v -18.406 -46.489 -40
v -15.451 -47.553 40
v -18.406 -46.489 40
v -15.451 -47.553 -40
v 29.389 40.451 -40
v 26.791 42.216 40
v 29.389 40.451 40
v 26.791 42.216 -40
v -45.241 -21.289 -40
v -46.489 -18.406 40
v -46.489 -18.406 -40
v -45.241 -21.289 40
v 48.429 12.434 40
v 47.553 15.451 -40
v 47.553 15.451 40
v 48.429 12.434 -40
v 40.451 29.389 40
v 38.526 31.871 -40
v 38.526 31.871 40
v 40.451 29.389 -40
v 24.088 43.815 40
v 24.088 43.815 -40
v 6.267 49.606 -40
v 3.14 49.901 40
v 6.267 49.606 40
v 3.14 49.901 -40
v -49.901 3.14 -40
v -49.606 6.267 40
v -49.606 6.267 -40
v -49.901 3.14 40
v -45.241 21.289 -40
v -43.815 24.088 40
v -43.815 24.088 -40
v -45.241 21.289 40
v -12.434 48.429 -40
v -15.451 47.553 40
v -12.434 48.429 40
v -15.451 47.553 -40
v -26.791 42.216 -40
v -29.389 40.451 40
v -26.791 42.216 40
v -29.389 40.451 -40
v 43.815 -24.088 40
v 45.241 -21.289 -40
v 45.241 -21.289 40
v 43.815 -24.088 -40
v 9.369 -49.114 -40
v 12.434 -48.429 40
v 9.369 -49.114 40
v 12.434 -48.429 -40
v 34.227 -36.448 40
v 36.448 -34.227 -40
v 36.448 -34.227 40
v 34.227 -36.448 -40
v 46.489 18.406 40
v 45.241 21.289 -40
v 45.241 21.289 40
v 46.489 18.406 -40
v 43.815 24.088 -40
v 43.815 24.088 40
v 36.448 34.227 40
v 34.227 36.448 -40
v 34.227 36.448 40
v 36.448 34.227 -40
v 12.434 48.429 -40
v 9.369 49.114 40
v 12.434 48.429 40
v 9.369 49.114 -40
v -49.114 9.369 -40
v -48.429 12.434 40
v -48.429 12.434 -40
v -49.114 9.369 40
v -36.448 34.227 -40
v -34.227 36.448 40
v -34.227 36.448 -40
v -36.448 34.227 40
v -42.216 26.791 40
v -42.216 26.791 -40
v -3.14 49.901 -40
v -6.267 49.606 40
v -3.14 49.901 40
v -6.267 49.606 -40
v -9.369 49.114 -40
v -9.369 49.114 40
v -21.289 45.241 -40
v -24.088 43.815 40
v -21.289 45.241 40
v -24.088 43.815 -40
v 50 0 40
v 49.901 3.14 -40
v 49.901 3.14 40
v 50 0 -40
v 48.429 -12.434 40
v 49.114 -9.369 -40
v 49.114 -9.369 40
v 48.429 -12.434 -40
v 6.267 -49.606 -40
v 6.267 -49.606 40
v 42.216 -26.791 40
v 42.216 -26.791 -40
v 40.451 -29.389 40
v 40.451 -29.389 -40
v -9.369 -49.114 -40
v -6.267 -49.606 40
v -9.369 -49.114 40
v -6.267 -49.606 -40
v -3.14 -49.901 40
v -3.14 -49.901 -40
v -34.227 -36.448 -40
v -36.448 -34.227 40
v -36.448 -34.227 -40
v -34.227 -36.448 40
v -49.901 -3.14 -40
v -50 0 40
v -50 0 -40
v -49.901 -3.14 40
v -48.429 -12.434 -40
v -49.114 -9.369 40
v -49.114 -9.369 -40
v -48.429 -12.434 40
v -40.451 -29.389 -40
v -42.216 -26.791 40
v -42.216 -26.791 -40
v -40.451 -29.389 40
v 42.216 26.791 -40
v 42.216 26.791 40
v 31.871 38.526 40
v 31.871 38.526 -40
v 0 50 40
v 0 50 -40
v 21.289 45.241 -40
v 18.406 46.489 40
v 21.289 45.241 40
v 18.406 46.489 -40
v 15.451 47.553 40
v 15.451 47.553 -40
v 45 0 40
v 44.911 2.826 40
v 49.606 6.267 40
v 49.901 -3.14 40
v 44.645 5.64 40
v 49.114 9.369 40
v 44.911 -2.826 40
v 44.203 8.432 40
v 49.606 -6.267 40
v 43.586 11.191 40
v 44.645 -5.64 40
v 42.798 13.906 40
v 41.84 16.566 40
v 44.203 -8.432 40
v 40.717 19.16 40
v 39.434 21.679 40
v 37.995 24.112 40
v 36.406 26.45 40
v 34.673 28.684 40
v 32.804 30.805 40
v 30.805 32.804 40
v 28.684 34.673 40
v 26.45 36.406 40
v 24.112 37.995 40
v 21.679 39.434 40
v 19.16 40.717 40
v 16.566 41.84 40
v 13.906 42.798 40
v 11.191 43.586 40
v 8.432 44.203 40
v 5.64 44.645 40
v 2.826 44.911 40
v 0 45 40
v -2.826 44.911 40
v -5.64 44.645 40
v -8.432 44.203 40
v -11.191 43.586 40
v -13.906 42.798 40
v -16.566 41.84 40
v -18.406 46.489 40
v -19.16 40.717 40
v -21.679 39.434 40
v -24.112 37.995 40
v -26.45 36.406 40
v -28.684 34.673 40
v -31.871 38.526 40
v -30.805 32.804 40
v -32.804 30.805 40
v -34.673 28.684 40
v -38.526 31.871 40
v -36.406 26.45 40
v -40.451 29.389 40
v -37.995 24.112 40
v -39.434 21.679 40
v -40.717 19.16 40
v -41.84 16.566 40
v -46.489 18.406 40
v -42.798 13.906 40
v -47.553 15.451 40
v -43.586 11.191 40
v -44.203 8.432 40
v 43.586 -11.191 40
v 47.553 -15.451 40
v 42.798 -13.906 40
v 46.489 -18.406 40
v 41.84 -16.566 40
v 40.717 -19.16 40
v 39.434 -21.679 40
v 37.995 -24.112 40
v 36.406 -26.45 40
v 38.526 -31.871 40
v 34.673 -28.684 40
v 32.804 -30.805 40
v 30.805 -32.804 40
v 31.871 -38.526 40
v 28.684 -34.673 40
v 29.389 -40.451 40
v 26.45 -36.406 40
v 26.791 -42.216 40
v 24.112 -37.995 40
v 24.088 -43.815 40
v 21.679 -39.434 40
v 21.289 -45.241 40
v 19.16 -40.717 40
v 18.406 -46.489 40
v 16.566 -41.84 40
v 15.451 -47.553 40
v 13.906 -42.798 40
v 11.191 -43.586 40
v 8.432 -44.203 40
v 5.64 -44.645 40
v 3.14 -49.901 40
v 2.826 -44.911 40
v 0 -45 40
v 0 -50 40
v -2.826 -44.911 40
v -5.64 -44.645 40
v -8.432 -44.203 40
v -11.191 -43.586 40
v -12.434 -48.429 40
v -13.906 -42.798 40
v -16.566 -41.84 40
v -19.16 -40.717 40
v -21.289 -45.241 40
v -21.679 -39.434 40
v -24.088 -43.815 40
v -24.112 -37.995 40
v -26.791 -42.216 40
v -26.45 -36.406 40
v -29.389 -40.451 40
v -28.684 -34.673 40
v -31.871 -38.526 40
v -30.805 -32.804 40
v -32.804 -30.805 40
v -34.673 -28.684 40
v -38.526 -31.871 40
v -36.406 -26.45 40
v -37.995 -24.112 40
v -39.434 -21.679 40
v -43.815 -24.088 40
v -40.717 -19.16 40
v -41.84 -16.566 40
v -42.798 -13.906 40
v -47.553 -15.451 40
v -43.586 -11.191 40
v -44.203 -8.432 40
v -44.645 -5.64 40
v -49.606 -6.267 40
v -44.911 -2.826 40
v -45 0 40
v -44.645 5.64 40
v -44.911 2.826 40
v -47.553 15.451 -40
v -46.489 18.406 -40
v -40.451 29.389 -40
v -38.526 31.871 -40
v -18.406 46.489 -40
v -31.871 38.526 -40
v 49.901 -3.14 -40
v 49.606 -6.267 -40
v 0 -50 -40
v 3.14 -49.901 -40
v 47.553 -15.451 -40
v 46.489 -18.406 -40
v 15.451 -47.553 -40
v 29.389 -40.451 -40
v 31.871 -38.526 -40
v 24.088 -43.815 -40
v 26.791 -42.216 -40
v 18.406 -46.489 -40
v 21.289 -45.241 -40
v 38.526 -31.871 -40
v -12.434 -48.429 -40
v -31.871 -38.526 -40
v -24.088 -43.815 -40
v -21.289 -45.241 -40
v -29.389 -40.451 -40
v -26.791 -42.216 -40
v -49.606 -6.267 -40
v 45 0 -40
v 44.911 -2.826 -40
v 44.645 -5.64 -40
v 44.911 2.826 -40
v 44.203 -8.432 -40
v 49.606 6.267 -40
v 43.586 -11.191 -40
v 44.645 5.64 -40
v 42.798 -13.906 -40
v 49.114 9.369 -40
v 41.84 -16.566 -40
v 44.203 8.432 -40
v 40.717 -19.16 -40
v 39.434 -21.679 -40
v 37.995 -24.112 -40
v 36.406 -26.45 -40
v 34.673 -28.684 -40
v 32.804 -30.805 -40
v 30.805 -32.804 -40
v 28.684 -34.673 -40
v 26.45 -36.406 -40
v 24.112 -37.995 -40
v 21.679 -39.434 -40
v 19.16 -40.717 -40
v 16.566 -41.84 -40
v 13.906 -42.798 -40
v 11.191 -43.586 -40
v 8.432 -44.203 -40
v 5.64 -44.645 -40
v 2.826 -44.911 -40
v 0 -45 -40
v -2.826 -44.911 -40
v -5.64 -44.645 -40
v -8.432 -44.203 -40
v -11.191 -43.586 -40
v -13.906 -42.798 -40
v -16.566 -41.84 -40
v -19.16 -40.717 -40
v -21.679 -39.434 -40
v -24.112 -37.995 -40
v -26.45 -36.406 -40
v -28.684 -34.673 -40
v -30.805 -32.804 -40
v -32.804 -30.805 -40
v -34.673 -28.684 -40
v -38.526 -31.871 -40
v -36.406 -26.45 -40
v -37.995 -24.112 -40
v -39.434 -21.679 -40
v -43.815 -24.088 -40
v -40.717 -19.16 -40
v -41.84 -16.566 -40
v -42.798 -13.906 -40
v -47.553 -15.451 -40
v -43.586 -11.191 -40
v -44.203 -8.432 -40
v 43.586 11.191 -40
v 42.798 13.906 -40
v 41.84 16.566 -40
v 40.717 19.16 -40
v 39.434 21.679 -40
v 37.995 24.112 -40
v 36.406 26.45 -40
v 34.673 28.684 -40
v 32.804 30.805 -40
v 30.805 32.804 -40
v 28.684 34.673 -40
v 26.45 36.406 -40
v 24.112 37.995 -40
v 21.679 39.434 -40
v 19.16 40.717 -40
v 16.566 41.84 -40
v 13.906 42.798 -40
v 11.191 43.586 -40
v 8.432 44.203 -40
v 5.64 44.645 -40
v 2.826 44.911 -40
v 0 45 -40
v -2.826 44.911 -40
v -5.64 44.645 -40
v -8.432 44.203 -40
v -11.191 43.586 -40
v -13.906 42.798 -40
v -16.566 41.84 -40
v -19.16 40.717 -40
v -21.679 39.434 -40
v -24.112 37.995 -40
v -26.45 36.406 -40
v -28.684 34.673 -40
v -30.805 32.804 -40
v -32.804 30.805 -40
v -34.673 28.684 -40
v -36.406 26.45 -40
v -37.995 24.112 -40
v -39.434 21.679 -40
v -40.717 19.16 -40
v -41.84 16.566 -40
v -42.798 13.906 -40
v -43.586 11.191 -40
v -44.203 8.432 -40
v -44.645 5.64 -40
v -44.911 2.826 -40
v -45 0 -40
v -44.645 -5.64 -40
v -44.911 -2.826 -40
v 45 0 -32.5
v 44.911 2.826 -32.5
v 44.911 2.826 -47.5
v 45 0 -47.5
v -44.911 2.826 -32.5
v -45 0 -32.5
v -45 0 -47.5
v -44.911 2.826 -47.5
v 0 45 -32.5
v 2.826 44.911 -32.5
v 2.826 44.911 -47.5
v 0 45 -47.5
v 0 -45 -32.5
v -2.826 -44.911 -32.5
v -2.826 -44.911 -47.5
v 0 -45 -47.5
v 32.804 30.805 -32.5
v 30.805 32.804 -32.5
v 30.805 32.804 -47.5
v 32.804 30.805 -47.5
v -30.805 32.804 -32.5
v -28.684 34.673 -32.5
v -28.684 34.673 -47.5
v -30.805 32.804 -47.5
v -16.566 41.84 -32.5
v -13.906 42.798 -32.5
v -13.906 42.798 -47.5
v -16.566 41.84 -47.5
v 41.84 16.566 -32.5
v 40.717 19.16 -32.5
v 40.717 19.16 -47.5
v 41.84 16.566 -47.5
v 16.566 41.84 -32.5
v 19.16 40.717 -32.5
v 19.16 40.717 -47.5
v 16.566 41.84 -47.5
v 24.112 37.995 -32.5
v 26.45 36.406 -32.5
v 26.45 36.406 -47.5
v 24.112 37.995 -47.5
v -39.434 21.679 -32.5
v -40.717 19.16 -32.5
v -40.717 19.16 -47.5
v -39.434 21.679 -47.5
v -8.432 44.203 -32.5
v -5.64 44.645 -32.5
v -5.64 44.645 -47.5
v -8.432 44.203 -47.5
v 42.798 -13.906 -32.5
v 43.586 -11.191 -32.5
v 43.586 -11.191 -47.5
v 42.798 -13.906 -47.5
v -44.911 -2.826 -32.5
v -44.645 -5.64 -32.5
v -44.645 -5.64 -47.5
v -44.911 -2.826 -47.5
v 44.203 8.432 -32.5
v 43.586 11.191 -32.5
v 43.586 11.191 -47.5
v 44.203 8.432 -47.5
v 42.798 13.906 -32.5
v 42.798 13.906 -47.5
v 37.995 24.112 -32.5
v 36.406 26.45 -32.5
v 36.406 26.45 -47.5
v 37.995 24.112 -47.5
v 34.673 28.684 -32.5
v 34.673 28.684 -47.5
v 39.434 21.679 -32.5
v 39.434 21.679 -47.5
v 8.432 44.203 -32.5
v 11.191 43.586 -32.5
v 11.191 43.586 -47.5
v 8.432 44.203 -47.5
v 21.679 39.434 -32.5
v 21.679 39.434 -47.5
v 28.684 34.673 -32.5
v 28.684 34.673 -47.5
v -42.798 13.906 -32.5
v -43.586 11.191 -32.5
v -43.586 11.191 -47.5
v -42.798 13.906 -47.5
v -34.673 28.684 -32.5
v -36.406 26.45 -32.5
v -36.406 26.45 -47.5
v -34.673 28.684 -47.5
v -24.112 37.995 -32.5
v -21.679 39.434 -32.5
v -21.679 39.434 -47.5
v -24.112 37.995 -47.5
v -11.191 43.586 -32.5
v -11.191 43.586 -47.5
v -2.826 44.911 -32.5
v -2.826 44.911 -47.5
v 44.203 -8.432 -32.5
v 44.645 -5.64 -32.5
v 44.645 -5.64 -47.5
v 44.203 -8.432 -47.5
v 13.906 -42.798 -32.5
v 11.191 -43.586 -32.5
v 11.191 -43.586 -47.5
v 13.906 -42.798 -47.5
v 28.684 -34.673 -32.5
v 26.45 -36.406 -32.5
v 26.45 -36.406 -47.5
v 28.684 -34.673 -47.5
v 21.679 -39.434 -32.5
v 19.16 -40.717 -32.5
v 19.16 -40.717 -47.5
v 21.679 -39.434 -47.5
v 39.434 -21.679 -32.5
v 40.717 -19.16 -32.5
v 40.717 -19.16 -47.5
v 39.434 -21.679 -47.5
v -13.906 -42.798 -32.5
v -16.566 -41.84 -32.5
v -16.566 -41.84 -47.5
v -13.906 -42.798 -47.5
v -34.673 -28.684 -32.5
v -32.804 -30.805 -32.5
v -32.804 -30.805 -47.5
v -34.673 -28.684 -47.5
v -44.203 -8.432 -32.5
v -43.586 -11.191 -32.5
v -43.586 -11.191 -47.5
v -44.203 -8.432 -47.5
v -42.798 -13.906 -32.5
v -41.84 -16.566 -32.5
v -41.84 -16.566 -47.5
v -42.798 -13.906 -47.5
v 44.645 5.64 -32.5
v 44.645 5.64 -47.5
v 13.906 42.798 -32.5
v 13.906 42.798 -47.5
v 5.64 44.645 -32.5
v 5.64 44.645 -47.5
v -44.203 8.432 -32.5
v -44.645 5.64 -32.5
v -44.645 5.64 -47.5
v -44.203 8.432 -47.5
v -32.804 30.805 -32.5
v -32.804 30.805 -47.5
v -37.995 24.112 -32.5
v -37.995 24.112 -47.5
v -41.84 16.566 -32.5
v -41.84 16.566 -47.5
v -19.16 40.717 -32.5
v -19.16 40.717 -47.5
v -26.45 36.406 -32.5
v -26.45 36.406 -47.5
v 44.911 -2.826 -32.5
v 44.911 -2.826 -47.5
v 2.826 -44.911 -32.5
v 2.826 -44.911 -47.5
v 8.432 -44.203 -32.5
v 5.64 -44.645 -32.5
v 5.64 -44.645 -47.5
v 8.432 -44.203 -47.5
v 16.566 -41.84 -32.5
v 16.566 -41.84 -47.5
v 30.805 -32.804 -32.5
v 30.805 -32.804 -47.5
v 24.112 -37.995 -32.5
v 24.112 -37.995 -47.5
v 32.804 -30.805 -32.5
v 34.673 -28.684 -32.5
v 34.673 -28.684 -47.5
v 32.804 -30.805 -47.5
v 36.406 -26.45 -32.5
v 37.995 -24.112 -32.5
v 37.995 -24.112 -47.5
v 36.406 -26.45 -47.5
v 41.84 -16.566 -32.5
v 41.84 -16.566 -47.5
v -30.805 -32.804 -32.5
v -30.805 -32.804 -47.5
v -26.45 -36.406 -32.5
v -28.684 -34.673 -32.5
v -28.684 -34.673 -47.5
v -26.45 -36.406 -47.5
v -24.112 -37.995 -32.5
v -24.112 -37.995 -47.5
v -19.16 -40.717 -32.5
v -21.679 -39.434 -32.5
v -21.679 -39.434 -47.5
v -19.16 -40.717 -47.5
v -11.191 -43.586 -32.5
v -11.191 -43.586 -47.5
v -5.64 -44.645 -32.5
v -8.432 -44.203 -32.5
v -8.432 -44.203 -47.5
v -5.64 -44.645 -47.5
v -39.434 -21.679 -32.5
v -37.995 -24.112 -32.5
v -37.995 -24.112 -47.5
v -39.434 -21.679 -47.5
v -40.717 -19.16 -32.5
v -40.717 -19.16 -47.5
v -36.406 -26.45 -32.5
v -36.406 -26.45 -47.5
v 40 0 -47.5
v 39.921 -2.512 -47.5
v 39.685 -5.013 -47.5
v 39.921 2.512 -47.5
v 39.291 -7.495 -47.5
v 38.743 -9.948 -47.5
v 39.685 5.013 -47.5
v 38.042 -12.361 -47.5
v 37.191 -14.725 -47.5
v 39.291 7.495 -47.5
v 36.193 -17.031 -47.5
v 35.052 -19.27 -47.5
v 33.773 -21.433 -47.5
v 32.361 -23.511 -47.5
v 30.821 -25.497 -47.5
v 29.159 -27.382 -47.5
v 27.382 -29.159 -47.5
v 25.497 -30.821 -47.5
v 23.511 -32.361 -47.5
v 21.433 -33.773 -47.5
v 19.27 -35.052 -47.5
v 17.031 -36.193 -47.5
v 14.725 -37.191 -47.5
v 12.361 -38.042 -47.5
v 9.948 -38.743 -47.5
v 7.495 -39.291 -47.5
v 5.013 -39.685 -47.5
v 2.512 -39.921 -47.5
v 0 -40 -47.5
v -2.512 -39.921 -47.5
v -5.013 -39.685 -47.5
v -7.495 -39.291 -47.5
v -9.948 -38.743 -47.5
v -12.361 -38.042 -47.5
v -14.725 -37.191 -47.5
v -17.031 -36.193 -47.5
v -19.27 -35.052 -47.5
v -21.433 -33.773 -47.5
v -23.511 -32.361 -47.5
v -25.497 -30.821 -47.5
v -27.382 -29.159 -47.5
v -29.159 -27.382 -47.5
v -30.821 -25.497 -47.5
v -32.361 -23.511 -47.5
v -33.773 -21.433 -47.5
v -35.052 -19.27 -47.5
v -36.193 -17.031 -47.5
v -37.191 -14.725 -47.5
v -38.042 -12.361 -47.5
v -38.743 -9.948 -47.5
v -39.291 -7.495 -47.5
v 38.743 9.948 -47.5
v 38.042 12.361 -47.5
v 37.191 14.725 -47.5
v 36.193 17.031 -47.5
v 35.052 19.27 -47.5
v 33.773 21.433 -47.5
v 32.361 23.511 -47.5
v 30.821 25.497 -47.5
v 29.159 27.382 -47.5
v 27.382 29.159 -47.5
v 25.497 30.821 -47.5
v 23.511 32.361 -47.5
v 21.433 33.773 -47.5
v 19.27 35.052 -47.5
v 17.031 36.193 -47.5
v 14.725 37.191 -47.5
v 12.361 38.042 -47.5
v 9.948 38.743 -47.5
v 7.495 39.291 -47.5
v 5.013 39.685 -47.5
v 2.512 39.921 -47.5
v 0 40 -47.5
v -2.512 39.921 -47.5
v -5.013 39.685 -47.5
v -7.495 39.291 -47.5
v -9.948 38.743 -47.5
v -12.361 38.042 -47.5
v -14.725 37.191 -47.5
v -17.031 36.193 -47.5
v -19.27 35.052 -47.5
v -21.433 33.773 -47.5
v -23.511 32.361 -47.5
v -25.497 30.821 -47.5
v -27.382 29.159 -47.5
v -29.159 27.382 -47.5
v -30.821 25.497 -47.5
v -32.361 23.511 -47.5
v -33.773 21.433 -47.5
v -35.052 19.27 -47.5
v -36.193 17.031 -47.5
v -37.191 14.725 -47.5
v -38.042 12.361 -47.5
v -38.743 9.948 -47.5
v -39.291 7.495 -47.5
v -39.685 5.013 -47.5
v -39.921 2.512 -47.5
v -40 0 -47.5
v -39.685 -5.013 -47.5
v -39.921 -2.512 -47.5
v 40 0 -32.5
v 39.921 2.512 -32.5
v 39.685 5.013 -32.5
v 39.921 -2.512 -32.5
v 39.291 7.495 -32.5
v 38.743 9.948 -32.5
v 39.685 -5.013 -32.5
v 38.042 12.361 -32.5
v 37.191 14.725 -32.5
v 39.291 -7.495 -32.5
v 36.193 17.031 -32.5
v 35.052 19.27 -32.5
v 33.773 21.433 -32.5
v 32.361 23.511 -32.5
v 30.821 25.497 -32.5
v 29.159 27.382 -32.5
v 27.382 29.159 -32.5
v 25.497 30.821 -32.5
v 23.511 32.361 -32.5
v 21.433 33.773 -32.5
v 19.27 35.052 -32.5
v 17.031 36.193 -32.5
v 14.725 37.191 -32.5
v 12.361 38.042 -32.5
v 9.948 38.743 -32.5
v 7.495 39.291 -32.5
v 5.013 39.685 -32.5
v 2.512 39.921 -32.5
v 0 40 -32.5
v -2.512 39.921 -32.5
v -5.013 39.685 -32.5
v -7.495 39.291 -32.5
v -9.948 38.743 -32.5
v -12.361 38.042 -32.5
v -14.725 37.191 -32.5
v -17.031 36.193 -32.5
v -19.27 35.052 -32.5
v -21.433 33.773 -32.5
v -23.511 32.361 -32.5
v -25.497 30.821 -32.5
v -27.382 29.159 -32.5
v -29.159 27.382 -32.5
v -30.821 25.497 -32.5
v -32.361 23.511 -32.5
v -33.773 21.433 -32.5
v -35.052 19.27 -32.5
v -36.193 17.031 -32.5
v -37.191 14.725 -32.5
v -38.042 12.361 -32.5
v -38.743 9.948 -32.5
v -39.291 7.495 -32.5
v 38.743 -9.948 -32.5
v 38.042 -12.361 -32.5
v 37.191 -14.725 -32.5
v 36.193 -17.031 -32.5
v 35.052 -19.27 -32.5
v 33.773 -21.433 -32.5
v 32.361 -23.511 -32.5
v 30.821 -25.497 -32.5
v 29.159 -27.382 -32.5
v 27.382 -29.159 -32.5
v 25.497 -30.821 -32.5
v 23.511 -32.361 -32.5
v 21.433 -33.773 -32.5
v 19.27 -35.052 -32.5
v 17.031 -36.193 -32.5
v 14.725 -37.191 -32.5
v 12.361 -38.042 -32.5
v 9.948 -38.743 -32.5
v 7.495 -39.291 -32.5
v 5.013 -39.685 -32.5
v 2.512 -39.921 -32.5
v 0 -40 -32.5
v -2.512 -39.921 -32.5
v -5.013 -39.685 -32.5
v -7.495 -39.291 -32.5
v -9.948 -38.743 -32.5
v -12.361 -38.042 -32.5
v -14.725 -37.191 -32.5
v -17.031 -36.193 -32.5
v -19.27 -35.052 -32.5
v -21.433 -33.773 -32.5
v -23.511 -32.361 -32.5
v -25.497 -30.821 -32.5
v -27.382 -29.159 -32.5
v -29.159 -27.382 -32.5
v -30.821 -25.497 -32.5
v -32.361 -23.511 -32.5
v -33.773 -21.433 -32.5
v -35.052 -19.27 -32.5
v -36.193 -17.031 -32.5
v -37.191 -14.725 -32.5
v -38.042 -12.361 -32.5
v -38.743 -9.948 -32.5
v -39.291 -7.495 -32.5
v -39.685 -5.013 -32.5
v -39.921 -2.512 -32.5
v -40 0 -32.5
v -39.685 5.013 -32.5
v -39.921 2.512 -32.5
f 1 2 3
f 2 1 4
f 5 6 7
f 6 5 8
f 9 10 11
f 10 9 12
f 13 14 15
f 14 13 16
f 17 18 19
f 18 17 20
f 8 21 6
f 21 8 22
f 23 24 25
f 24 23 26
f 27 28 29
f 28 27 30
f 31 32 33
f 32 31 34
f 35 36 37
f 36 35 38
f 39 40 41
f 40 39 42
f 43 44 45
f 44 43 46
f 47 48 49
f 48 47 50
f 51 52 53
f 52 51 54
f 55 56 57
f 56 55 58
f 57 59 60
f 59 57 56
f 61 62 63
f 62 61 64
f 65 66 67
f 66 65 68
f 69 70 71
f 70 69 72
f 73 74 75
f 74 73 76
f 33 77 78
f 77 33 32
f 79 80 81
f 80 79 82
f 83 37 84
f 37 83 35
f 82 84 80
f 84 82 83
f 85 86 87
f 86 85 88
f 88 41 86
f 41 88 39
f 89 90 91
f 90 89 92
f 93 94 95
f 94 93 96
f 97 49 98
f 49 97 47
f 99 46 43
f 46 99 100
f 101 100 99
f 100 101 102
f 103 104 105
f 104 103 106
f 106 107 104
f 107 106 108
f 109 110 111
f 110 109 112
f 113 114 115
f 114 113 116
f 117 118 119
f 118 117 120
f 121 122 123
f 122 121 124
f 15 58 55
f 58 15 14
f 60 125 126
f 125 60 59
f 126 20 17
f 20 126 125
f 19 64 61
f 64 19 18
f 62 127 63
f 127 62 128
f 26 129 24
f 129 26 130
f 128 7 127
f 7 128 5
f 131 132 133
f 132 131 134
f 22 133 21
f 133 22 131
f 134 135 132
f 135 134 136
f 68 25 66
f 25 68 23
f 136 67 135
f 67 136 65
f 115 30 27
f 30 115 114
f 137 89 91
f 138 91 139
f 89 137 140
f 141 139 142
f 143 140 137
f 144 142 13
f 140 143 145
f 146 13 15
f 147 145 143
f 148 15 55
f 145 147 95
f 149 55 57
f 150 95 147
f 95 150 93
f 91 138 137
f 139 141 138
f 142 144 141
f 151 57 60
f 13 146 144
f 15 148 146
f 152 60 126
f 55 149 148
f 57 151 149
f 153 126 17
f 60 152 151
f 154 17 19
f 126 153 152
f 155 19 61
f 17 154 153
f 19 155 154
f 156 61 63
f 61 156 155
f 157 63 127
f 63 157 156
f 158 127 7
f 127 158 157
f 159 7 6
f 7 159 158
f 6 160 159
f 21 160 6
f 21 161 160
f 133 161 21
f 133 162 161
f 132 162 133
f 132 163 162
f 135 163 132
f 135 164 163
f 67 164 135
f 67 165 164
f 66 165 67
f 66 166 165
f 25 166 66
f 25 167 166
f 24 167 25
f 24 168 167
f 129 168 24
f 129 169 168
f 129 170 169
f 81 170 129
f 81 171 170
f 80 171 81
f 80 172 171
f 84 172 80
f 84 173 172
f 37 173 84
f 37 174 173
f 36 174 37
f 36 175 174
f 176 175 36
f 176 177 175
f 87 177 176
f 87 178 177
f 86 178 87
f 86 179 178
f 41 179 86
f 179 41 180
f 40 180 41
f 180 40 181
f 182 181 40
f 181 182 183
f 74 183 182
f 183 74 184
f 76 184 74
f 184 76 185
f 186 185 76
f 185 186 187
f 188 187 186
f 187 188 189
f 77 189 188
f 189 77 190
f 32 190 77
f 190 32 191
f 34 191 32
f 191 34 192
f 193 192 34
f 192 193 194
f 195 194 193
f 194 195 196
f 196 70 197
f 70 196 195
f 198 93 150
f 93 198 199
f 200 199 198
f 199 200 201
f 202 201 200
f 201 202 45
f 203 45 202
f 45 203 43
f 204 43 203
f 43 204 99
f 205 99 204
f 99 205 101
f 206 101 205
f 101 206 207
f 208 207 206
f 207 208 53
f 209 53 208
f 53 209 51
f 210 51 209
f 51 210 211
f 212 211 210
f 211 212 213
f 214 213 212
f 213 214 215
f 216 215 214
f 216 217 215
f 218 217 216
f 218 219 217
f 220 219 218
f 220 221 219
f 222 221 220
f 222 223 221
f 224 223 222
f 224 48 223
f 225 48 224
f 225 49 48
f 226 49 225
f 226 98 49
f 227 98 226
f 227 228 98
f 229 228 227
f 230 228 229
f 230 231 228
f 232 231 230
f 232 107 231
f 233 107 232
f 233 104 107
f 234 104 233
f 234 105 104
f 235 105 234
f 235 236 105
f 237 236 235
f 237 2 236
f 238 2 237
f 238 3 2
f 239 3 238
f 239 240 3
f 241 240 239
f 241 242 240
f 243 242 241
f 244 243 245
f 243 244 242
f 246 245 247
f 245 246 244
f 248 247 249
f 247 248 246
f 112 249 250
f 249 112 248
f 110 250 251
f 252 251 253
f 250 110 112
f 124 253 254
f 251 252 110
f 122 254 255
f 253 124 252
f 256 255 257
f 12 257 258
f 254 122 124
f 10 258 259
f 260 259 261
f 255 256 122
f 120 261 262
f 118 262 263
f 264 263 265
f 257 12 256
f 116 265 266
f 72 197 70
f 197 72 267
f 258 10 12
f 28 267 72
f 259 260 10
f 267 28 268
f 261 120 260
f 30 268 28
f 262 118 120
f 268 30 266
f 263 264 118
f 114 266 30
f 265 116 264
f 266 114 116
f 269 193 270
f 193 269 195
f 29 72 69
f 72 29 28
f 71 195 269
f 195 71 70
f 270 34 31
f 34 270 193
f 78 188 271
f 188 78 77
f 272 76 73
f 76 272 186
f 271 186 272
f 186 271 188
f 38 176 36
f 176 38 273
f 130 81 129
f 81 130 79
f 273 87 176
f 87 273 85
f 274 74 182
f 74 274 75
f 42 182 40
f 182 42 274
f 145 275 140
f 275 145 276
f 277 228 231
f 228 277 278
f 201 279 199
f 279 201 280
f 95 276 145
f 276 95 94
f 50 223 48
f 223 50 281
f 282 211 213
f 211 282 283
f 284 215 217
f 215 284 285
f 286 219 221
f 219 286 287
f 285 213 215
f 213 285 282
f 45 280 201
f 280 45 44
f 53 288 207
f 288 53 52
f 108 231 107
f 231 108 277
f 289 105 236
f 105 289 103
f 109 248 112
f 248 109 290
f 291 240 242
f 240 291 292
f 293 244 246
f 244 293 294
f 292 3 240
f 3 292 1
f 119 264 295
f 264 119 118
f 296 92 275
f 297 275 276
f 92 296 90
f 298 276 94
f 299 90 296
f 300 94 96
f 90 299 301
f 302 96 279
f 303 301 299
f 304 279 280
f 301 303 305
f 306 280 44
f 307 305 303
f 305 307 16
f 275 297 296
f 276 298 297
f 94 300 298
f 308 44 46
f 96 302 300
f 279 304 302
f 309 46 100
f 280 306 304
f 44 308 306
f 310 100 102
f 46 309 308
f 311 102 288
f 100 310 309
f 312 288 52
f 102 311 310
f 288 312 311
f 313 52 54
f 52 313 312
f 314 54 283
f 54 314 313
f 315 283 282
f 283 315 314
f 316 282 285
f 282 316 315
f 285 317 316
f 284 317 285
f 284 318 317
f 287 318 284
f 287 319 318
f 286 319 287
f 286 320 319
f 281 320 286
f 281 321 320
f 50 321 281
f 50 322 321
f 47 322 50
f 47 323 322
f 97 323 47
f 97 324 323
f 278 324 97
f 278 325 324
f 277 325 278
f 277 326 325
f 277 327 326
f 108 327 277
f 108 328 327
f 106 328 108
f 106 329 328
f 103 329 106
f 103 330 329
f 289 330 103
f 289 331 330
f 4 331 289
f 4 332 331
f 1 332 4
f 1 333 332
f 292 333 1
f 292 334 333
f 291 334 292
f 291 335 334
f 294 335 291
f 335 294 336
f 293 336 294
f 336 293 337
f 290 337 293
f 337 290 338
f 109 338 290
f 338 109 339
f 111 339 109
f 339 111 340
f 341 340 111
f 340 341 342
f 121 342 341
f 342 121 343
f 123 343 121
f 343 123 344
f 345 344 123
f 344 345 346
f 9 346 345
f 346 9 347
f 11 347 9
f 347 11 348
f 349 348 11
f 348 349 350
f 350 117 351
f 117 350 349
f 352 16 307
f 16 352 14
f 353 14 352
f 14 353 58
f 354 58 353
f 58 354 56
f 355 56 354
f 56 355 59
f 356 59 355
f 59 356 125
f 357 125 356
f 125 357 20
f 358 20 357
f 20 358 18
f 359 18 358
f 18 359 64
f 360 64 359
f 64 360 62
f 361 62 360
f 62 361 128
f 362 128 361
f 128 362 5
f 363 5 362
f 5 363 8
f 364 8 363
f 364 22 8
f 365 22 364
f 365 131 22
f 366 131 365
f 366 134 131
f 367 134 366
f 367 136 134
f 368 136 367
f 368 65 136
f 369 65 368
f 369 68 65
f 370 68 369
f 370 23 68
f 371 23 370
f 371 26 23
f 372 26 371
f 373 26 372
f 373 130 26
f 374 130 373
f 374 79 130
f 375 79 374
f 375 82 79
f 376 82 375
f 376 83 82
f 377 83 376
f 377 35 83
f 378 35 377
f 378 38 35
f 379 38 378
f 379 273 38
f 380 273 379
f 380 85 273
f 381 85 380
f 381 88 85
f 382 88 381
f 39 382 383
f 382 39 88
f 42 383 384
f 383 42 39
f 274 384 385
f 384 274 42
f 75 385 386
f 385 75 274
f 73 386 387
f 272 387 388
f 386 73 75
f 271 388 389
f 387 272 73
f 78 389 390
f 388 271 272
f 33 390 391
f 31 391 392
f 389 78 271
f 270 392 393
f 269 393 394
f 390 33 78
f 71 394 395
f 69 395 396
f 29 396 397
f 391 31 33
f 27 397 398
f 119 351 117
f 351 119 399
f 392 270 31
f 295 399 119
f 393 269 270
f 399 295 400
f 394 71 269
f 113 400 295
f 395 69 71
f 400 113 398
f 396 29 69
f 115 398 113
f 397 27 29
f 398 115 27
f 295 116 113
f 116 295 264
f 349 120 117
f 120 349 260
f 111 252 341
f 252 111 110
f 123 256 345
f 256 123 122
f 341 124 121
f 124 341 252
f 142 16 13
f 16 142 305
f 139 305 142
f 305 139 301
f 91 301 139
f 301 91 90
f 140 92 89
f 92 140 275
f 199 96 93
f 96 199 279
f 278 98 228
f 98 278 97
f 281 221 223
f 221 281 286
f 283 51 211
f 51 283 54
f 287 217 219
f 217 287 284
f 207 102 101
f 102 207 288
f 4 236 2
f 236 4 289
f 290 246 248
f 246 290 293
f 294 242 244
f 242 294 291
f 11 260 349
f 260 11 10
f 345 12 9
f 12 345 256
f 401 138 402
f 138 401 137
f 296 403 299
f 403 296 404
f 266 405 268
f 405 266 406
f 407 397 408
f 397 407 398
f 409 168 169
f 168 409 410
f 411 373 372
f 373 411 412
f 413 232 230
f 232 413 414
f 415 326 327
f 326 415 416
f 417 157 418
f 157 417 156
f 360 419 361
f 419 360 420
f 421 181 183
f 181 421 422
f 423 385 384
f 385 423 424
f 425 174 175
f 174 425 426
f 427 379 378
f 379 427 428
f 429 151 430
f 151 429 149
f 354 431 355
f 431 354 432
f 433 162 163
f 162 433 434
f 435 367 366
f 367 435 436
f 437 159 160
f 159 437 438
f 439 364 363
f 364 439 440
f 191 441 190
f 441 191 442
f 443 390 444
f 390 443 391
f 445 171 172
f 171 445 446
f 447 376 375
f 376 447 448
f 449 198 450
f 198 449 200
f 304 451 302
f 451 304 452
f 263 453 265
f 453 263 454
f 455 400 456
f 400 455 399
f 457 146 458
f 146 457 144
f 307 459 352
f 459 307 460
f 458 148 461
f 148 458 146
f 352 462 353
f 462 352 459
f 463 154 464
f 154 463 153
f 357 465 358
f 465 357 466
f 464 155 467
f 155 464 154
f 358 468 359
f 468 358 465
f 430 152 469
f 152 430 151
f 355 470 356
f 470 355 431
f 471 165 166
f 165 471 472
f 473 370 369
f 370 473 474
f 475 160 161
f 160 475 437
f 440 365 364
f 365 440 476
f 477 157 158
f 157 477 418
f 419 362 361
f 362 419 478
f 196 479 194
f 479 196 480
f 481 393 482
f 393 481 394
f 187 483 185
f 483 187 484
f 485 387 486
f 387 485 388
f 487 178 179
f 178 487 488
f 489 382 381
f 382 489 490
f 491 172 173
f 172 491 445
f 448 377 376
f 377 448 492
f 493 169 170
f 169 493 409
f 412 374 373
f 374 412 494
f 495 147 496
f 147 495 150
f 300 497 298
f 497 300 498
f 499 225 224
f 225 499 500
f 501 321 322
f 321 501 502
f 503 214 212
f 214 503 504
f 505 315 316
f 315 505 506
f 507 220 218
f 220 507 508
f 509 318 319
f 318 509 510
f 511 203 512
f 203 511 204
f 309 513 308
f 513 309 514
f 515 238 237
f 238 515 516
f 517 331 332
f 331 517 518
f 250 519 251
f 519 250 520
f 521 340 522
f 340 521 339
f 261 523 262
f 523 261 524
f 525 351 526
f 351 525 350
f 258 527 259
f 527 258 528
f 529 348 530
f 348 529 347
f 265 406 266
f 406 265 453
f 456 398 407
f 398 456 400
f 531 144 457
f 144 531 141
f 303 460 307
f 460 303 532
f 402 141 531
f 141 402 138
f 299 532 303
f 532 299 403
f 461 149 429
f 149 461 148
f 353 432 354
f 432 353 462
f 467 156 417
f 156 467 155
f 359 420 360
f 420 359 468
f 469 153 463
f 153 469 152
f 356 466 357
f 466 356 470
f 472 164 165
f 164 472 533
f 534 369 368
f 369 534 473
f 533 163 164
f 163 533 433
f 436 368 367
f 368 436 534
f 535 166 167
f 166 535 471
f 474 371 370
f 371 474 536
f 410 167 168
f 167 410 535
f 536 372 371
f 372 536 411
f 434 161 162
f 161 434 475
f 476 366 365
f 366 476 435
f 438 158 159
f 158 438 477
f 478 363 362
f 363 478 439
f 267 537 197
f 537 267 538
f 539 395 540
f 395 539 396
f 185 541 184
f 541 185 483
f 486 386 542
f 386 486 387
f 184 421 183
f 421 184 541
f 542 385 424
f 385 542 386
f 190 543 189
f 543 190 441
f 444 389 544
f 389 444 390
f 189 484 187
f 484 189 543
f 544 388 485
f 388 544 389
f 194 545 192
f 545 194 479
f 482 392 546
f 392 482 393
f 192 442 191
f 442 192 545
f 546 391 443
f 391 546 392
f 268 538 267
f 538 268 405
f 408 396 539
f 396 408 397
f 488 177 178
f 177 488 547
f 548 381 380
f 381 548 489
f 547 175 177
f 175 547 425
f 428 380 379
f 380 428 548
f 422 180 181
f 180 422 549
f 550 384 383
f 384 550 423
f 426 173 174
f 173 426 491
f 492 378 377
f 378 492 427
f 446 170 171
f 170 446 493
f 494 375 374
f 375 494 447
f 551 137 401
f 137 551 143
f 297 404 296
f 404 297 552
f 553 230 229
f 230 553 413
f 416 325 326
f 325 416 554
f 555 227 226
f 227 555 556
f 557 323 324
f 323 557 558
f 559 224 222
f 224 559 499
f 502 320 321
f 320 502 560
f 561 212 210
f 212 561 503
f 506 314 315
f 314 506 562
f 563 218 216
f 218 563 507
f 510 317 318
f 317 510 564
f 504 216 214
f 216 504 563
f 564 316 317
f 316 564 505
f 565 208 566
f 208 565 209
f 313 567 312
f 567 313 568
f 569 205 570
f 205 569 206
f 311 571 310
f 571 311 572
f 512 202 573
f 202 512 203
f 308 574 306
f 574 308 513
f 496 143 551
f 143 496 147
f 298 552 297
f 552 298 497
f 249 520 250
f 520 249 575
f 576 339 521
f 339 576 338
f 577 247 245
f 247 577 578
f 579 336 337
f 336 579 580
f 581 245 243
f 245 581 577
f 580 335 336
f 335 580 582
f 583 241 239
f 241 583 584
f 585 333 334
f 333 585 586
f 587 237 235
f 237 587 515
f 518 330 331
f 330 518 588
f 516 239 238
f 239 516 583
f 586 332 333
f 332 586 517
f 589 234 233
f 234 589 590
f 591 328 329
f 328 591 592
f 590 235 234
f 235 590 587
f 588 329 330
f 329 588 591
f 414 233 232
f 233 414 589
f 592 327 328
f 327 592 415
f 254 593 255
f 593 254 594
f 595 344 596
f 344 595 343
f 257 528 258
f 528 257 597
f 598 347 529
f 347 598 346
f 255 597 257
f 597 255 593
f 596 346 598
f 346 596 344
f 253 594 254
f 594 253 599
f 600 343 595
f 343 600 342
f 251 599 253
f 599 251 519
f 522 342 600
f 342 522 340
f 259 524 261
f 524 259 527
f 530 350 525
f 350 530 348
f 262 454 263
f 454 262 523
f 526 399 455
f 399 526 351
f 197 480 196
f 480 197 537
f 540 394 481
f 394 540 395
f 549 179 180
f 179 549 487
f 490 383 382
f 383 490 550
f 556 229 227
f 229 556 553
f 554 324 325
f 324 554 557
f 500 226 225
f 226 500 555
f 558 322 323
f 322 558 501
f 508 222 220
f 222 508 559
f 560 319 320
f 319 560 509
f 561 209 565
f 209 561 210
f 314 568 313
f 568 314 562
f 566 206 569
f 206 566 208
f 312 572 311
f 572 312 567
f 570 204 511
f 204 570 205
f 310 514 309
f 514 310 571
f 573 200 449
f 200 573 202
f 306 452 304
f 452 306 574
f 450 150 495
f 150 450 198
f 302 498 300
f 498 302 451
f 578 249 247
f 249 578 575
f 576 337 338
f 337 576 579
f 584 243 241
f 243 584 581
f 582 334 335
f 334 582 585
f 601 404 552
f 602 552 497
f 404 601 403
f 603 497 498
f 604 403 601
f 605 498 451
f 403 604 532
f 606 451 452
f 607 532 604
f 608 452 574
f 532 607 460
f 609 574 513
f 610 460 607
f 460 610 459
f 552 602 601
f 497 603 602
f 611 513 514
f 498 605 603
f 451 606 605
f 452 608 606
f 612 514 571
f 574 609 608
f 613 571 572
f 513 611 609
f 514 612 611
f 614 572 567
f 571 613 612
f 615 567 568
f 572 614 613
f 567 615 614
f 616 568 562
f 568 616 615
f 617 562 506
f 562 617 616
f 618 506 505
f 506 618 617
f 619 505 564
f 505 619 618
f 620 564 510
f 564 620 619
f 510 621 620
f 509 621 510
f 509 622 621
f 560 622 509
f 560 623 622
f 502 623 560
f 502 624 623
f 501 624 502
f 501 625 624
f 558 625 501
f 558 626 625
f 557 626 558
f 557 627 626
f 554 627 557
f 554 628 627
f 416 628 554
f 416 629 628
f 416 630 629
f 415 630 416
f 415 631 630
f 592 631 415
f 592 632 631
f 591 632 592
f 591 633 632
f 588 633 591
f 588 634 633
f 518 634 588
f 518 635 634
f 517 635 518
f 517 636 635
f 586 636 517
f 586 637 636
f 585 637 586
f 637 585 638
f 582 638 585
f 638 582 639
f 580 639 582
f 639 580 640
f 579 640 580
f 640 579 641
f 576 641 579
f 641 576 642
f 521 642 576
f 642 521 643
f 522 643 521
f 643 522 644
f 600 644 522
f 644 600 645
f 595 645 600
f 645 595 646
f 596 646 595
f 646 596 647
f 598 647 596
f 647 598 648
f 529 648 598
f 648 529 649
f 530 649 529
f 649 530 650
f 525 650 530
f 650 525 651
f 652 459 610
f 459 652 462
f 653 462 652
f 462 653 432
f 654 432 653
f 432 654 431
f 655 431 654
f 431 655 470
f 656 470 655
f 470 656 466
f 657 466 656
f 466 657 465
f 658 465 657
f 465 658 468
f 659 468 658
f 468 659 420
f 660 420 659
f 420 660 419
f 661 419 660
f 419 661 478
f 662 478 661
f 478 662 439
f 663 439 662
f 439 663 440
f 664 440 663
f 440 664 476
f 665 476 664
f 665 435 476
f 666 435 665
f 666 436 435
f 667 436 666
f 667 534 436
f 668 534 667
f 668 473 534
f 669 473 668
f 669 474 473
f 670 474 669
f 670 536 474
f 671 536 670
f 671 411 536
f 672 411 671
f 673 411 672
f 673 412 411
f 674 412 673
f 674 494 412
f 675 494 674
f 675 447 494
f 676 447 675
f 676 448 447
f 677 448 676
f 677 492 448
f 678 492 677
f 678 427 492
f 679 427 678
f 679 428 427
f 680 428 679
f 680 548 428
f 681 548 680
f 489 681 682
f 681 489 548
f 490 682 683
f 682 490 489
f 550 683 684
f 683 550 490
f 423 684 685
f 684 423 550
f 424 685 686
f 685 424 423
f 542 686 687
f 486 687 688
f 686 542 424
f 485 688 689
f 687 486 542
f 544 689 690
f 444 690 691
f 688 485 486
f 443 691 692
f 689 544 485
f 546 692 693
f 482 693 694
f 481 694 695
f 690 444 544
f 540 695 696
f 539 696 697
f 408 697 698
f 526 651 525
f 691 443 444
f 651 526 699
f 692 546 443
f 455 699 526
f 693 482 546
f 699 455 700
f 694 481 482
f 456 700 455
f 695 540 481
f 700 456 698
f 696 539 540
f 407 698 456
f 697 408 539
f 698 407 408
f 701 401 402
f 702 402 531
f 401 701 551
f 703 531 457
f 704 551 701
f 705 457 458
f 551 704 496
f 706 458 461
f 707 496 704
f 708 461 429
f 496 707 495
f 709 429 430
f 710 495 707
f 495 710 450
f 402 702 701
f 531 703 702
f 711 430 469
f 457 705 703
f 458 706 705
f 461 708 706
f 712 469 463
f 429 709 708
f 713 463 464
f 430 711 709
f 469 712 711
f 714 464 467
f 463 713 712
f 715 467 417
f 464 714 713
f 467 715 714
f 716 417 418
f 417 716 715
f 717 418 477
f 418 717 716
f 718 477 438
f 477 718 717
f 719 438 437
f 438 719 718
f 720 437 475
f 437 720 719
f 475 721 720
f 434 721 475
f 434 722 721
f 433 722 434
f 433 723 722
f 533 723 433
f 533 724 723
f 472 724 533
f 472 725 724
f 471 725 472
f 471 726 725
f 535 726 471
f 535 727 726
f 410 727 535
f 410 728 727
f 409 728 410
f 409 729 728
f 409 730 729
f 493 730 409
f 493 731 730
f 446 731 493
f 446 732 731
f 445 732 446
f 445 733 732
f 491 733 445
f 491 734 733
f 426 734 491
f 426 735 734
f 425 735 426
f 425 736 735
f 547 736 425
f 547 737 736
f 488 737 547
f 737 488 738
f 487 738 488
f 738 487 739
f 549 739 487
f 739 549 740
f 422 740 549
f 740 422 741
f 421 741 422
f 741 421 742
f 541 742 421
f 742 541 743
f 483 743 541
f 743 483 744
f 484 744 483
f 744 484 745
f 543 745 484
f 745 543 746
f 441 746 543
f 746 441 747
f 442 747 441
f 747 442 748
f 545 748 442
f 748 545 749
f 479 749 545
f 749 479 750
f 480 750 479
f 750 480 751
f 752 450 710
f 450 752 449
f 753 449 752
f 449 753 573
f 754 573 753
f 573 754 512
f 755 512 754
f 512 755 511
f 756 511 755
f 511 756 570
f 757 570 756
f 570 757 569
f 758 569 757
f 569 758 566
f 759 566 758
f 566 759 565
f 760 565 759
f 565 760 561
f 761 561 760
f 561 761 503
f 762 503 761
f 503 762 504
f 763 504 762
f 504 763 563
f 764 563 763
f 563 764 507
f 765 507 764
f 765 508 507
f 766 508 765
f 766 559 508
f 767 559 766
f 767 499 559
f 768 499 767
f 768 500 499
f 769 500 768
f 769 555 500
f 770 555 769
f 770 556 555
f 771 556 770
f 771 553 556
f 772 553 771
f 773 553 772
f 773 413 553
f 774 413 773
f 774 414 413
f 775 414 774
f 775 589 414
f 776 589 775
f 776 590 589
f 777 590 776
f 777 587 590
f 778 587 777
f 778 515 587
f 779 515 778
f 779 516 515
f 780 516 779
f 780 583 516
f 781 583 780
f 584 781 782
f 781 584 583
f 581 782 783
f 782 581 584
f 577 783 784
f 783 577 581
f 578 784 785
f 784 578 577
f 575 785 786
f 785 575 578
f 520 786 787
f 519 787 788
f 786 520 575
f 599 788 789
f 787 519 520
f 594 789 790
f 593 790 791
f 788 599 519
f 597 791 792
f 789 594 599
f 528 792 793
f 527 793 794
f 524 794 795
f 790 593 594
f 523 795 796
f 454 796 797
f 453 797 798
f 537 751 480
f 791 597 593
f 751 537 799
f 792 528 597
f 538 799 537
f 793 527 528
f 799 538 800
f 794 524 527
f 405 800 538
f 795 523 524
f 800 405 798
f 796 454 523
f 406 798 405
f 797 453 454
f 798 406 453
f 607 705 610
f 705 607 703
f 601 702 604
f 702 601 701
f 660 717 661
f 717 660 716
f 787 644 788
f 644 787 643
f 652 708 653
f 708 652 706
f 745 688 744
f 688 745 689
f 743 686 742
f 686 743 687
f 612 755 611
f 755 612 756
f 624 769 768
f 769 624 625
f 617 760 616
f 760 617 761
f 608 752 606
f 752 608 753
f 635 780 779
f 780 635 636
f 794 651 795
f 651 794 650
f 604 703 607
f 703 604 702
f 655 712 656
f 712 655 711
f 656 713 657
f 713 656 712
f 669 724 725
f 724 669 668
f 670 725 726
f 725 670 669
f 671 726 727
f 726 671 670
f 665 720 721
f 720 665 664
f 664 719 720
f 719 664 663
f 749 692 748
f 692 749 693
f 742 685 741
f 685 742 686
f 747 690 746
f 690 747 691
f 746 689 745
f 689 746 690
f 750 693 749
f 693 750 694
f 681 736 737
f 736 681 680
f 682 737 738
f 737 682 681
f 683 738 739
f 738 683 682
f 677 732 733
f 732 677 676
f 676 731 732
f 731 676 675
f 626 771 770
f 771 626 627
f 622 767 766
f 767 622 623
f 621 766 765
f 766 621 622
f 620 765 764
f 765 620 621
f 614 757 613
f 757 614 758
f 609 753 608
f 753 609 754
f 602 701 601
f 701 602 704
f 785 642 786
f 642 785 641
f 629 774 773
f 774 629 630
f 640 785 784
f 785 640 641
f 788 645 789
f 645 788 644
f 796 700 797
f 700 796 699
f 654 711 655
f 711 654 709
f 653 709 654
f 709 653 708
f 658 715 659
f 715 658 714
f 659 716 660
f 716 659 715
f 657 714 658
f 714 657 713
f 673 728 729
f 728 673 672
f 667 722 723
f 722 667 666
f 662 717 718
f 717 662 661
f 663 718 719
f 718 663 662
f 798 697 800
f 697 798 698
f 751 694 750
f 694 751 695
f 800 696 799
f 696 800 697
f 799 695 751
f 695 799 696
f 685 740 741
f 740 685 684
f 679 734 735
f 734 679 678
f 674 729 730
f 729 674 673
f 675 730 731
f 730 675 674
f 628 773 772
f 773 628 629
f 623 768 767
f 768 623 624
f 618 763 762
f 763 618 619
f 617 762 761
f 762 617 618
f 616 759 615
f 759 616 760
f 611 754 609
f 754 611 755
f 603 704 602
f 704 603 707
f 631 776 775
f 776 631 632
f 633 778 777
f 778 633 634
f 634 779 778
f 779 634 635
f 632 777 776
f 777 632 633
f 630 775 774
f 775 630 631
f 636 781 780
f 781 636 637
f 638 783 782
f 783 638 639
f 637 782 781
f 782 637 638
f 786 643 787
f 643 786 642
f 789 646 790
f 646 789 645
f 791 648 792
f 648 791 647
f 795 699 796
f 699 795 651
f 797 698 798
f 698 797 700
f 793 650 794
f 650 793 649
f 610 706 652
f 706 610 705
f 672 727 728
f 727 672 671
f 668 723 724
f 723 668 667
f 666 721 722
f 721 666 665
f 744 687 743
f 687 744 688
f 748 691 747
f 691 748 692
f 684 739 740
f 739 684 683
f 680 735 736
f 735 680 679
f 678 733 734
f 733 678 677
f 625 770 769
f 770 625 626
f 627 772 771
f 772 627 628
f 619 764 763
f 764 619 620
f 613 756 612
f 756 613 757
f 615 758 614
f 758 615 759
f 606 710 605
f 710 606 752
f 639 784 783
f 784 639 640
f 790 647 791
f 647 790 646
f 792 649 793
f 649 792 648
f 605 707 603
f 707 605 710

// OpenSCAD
union(){
    
    difference(){
    cylinder(h=80, r=50, center=true,$fn=100);
    cylinder(h=100, r=45, center=true,$fn=100);
    }


    translate([0, 0,-40]) 
    difference(){
    cylinder(h=15, r=45, center=true,$fn=100);
    cylinder(h=20, r=40, center=true,$fn=100);
    }    
}
